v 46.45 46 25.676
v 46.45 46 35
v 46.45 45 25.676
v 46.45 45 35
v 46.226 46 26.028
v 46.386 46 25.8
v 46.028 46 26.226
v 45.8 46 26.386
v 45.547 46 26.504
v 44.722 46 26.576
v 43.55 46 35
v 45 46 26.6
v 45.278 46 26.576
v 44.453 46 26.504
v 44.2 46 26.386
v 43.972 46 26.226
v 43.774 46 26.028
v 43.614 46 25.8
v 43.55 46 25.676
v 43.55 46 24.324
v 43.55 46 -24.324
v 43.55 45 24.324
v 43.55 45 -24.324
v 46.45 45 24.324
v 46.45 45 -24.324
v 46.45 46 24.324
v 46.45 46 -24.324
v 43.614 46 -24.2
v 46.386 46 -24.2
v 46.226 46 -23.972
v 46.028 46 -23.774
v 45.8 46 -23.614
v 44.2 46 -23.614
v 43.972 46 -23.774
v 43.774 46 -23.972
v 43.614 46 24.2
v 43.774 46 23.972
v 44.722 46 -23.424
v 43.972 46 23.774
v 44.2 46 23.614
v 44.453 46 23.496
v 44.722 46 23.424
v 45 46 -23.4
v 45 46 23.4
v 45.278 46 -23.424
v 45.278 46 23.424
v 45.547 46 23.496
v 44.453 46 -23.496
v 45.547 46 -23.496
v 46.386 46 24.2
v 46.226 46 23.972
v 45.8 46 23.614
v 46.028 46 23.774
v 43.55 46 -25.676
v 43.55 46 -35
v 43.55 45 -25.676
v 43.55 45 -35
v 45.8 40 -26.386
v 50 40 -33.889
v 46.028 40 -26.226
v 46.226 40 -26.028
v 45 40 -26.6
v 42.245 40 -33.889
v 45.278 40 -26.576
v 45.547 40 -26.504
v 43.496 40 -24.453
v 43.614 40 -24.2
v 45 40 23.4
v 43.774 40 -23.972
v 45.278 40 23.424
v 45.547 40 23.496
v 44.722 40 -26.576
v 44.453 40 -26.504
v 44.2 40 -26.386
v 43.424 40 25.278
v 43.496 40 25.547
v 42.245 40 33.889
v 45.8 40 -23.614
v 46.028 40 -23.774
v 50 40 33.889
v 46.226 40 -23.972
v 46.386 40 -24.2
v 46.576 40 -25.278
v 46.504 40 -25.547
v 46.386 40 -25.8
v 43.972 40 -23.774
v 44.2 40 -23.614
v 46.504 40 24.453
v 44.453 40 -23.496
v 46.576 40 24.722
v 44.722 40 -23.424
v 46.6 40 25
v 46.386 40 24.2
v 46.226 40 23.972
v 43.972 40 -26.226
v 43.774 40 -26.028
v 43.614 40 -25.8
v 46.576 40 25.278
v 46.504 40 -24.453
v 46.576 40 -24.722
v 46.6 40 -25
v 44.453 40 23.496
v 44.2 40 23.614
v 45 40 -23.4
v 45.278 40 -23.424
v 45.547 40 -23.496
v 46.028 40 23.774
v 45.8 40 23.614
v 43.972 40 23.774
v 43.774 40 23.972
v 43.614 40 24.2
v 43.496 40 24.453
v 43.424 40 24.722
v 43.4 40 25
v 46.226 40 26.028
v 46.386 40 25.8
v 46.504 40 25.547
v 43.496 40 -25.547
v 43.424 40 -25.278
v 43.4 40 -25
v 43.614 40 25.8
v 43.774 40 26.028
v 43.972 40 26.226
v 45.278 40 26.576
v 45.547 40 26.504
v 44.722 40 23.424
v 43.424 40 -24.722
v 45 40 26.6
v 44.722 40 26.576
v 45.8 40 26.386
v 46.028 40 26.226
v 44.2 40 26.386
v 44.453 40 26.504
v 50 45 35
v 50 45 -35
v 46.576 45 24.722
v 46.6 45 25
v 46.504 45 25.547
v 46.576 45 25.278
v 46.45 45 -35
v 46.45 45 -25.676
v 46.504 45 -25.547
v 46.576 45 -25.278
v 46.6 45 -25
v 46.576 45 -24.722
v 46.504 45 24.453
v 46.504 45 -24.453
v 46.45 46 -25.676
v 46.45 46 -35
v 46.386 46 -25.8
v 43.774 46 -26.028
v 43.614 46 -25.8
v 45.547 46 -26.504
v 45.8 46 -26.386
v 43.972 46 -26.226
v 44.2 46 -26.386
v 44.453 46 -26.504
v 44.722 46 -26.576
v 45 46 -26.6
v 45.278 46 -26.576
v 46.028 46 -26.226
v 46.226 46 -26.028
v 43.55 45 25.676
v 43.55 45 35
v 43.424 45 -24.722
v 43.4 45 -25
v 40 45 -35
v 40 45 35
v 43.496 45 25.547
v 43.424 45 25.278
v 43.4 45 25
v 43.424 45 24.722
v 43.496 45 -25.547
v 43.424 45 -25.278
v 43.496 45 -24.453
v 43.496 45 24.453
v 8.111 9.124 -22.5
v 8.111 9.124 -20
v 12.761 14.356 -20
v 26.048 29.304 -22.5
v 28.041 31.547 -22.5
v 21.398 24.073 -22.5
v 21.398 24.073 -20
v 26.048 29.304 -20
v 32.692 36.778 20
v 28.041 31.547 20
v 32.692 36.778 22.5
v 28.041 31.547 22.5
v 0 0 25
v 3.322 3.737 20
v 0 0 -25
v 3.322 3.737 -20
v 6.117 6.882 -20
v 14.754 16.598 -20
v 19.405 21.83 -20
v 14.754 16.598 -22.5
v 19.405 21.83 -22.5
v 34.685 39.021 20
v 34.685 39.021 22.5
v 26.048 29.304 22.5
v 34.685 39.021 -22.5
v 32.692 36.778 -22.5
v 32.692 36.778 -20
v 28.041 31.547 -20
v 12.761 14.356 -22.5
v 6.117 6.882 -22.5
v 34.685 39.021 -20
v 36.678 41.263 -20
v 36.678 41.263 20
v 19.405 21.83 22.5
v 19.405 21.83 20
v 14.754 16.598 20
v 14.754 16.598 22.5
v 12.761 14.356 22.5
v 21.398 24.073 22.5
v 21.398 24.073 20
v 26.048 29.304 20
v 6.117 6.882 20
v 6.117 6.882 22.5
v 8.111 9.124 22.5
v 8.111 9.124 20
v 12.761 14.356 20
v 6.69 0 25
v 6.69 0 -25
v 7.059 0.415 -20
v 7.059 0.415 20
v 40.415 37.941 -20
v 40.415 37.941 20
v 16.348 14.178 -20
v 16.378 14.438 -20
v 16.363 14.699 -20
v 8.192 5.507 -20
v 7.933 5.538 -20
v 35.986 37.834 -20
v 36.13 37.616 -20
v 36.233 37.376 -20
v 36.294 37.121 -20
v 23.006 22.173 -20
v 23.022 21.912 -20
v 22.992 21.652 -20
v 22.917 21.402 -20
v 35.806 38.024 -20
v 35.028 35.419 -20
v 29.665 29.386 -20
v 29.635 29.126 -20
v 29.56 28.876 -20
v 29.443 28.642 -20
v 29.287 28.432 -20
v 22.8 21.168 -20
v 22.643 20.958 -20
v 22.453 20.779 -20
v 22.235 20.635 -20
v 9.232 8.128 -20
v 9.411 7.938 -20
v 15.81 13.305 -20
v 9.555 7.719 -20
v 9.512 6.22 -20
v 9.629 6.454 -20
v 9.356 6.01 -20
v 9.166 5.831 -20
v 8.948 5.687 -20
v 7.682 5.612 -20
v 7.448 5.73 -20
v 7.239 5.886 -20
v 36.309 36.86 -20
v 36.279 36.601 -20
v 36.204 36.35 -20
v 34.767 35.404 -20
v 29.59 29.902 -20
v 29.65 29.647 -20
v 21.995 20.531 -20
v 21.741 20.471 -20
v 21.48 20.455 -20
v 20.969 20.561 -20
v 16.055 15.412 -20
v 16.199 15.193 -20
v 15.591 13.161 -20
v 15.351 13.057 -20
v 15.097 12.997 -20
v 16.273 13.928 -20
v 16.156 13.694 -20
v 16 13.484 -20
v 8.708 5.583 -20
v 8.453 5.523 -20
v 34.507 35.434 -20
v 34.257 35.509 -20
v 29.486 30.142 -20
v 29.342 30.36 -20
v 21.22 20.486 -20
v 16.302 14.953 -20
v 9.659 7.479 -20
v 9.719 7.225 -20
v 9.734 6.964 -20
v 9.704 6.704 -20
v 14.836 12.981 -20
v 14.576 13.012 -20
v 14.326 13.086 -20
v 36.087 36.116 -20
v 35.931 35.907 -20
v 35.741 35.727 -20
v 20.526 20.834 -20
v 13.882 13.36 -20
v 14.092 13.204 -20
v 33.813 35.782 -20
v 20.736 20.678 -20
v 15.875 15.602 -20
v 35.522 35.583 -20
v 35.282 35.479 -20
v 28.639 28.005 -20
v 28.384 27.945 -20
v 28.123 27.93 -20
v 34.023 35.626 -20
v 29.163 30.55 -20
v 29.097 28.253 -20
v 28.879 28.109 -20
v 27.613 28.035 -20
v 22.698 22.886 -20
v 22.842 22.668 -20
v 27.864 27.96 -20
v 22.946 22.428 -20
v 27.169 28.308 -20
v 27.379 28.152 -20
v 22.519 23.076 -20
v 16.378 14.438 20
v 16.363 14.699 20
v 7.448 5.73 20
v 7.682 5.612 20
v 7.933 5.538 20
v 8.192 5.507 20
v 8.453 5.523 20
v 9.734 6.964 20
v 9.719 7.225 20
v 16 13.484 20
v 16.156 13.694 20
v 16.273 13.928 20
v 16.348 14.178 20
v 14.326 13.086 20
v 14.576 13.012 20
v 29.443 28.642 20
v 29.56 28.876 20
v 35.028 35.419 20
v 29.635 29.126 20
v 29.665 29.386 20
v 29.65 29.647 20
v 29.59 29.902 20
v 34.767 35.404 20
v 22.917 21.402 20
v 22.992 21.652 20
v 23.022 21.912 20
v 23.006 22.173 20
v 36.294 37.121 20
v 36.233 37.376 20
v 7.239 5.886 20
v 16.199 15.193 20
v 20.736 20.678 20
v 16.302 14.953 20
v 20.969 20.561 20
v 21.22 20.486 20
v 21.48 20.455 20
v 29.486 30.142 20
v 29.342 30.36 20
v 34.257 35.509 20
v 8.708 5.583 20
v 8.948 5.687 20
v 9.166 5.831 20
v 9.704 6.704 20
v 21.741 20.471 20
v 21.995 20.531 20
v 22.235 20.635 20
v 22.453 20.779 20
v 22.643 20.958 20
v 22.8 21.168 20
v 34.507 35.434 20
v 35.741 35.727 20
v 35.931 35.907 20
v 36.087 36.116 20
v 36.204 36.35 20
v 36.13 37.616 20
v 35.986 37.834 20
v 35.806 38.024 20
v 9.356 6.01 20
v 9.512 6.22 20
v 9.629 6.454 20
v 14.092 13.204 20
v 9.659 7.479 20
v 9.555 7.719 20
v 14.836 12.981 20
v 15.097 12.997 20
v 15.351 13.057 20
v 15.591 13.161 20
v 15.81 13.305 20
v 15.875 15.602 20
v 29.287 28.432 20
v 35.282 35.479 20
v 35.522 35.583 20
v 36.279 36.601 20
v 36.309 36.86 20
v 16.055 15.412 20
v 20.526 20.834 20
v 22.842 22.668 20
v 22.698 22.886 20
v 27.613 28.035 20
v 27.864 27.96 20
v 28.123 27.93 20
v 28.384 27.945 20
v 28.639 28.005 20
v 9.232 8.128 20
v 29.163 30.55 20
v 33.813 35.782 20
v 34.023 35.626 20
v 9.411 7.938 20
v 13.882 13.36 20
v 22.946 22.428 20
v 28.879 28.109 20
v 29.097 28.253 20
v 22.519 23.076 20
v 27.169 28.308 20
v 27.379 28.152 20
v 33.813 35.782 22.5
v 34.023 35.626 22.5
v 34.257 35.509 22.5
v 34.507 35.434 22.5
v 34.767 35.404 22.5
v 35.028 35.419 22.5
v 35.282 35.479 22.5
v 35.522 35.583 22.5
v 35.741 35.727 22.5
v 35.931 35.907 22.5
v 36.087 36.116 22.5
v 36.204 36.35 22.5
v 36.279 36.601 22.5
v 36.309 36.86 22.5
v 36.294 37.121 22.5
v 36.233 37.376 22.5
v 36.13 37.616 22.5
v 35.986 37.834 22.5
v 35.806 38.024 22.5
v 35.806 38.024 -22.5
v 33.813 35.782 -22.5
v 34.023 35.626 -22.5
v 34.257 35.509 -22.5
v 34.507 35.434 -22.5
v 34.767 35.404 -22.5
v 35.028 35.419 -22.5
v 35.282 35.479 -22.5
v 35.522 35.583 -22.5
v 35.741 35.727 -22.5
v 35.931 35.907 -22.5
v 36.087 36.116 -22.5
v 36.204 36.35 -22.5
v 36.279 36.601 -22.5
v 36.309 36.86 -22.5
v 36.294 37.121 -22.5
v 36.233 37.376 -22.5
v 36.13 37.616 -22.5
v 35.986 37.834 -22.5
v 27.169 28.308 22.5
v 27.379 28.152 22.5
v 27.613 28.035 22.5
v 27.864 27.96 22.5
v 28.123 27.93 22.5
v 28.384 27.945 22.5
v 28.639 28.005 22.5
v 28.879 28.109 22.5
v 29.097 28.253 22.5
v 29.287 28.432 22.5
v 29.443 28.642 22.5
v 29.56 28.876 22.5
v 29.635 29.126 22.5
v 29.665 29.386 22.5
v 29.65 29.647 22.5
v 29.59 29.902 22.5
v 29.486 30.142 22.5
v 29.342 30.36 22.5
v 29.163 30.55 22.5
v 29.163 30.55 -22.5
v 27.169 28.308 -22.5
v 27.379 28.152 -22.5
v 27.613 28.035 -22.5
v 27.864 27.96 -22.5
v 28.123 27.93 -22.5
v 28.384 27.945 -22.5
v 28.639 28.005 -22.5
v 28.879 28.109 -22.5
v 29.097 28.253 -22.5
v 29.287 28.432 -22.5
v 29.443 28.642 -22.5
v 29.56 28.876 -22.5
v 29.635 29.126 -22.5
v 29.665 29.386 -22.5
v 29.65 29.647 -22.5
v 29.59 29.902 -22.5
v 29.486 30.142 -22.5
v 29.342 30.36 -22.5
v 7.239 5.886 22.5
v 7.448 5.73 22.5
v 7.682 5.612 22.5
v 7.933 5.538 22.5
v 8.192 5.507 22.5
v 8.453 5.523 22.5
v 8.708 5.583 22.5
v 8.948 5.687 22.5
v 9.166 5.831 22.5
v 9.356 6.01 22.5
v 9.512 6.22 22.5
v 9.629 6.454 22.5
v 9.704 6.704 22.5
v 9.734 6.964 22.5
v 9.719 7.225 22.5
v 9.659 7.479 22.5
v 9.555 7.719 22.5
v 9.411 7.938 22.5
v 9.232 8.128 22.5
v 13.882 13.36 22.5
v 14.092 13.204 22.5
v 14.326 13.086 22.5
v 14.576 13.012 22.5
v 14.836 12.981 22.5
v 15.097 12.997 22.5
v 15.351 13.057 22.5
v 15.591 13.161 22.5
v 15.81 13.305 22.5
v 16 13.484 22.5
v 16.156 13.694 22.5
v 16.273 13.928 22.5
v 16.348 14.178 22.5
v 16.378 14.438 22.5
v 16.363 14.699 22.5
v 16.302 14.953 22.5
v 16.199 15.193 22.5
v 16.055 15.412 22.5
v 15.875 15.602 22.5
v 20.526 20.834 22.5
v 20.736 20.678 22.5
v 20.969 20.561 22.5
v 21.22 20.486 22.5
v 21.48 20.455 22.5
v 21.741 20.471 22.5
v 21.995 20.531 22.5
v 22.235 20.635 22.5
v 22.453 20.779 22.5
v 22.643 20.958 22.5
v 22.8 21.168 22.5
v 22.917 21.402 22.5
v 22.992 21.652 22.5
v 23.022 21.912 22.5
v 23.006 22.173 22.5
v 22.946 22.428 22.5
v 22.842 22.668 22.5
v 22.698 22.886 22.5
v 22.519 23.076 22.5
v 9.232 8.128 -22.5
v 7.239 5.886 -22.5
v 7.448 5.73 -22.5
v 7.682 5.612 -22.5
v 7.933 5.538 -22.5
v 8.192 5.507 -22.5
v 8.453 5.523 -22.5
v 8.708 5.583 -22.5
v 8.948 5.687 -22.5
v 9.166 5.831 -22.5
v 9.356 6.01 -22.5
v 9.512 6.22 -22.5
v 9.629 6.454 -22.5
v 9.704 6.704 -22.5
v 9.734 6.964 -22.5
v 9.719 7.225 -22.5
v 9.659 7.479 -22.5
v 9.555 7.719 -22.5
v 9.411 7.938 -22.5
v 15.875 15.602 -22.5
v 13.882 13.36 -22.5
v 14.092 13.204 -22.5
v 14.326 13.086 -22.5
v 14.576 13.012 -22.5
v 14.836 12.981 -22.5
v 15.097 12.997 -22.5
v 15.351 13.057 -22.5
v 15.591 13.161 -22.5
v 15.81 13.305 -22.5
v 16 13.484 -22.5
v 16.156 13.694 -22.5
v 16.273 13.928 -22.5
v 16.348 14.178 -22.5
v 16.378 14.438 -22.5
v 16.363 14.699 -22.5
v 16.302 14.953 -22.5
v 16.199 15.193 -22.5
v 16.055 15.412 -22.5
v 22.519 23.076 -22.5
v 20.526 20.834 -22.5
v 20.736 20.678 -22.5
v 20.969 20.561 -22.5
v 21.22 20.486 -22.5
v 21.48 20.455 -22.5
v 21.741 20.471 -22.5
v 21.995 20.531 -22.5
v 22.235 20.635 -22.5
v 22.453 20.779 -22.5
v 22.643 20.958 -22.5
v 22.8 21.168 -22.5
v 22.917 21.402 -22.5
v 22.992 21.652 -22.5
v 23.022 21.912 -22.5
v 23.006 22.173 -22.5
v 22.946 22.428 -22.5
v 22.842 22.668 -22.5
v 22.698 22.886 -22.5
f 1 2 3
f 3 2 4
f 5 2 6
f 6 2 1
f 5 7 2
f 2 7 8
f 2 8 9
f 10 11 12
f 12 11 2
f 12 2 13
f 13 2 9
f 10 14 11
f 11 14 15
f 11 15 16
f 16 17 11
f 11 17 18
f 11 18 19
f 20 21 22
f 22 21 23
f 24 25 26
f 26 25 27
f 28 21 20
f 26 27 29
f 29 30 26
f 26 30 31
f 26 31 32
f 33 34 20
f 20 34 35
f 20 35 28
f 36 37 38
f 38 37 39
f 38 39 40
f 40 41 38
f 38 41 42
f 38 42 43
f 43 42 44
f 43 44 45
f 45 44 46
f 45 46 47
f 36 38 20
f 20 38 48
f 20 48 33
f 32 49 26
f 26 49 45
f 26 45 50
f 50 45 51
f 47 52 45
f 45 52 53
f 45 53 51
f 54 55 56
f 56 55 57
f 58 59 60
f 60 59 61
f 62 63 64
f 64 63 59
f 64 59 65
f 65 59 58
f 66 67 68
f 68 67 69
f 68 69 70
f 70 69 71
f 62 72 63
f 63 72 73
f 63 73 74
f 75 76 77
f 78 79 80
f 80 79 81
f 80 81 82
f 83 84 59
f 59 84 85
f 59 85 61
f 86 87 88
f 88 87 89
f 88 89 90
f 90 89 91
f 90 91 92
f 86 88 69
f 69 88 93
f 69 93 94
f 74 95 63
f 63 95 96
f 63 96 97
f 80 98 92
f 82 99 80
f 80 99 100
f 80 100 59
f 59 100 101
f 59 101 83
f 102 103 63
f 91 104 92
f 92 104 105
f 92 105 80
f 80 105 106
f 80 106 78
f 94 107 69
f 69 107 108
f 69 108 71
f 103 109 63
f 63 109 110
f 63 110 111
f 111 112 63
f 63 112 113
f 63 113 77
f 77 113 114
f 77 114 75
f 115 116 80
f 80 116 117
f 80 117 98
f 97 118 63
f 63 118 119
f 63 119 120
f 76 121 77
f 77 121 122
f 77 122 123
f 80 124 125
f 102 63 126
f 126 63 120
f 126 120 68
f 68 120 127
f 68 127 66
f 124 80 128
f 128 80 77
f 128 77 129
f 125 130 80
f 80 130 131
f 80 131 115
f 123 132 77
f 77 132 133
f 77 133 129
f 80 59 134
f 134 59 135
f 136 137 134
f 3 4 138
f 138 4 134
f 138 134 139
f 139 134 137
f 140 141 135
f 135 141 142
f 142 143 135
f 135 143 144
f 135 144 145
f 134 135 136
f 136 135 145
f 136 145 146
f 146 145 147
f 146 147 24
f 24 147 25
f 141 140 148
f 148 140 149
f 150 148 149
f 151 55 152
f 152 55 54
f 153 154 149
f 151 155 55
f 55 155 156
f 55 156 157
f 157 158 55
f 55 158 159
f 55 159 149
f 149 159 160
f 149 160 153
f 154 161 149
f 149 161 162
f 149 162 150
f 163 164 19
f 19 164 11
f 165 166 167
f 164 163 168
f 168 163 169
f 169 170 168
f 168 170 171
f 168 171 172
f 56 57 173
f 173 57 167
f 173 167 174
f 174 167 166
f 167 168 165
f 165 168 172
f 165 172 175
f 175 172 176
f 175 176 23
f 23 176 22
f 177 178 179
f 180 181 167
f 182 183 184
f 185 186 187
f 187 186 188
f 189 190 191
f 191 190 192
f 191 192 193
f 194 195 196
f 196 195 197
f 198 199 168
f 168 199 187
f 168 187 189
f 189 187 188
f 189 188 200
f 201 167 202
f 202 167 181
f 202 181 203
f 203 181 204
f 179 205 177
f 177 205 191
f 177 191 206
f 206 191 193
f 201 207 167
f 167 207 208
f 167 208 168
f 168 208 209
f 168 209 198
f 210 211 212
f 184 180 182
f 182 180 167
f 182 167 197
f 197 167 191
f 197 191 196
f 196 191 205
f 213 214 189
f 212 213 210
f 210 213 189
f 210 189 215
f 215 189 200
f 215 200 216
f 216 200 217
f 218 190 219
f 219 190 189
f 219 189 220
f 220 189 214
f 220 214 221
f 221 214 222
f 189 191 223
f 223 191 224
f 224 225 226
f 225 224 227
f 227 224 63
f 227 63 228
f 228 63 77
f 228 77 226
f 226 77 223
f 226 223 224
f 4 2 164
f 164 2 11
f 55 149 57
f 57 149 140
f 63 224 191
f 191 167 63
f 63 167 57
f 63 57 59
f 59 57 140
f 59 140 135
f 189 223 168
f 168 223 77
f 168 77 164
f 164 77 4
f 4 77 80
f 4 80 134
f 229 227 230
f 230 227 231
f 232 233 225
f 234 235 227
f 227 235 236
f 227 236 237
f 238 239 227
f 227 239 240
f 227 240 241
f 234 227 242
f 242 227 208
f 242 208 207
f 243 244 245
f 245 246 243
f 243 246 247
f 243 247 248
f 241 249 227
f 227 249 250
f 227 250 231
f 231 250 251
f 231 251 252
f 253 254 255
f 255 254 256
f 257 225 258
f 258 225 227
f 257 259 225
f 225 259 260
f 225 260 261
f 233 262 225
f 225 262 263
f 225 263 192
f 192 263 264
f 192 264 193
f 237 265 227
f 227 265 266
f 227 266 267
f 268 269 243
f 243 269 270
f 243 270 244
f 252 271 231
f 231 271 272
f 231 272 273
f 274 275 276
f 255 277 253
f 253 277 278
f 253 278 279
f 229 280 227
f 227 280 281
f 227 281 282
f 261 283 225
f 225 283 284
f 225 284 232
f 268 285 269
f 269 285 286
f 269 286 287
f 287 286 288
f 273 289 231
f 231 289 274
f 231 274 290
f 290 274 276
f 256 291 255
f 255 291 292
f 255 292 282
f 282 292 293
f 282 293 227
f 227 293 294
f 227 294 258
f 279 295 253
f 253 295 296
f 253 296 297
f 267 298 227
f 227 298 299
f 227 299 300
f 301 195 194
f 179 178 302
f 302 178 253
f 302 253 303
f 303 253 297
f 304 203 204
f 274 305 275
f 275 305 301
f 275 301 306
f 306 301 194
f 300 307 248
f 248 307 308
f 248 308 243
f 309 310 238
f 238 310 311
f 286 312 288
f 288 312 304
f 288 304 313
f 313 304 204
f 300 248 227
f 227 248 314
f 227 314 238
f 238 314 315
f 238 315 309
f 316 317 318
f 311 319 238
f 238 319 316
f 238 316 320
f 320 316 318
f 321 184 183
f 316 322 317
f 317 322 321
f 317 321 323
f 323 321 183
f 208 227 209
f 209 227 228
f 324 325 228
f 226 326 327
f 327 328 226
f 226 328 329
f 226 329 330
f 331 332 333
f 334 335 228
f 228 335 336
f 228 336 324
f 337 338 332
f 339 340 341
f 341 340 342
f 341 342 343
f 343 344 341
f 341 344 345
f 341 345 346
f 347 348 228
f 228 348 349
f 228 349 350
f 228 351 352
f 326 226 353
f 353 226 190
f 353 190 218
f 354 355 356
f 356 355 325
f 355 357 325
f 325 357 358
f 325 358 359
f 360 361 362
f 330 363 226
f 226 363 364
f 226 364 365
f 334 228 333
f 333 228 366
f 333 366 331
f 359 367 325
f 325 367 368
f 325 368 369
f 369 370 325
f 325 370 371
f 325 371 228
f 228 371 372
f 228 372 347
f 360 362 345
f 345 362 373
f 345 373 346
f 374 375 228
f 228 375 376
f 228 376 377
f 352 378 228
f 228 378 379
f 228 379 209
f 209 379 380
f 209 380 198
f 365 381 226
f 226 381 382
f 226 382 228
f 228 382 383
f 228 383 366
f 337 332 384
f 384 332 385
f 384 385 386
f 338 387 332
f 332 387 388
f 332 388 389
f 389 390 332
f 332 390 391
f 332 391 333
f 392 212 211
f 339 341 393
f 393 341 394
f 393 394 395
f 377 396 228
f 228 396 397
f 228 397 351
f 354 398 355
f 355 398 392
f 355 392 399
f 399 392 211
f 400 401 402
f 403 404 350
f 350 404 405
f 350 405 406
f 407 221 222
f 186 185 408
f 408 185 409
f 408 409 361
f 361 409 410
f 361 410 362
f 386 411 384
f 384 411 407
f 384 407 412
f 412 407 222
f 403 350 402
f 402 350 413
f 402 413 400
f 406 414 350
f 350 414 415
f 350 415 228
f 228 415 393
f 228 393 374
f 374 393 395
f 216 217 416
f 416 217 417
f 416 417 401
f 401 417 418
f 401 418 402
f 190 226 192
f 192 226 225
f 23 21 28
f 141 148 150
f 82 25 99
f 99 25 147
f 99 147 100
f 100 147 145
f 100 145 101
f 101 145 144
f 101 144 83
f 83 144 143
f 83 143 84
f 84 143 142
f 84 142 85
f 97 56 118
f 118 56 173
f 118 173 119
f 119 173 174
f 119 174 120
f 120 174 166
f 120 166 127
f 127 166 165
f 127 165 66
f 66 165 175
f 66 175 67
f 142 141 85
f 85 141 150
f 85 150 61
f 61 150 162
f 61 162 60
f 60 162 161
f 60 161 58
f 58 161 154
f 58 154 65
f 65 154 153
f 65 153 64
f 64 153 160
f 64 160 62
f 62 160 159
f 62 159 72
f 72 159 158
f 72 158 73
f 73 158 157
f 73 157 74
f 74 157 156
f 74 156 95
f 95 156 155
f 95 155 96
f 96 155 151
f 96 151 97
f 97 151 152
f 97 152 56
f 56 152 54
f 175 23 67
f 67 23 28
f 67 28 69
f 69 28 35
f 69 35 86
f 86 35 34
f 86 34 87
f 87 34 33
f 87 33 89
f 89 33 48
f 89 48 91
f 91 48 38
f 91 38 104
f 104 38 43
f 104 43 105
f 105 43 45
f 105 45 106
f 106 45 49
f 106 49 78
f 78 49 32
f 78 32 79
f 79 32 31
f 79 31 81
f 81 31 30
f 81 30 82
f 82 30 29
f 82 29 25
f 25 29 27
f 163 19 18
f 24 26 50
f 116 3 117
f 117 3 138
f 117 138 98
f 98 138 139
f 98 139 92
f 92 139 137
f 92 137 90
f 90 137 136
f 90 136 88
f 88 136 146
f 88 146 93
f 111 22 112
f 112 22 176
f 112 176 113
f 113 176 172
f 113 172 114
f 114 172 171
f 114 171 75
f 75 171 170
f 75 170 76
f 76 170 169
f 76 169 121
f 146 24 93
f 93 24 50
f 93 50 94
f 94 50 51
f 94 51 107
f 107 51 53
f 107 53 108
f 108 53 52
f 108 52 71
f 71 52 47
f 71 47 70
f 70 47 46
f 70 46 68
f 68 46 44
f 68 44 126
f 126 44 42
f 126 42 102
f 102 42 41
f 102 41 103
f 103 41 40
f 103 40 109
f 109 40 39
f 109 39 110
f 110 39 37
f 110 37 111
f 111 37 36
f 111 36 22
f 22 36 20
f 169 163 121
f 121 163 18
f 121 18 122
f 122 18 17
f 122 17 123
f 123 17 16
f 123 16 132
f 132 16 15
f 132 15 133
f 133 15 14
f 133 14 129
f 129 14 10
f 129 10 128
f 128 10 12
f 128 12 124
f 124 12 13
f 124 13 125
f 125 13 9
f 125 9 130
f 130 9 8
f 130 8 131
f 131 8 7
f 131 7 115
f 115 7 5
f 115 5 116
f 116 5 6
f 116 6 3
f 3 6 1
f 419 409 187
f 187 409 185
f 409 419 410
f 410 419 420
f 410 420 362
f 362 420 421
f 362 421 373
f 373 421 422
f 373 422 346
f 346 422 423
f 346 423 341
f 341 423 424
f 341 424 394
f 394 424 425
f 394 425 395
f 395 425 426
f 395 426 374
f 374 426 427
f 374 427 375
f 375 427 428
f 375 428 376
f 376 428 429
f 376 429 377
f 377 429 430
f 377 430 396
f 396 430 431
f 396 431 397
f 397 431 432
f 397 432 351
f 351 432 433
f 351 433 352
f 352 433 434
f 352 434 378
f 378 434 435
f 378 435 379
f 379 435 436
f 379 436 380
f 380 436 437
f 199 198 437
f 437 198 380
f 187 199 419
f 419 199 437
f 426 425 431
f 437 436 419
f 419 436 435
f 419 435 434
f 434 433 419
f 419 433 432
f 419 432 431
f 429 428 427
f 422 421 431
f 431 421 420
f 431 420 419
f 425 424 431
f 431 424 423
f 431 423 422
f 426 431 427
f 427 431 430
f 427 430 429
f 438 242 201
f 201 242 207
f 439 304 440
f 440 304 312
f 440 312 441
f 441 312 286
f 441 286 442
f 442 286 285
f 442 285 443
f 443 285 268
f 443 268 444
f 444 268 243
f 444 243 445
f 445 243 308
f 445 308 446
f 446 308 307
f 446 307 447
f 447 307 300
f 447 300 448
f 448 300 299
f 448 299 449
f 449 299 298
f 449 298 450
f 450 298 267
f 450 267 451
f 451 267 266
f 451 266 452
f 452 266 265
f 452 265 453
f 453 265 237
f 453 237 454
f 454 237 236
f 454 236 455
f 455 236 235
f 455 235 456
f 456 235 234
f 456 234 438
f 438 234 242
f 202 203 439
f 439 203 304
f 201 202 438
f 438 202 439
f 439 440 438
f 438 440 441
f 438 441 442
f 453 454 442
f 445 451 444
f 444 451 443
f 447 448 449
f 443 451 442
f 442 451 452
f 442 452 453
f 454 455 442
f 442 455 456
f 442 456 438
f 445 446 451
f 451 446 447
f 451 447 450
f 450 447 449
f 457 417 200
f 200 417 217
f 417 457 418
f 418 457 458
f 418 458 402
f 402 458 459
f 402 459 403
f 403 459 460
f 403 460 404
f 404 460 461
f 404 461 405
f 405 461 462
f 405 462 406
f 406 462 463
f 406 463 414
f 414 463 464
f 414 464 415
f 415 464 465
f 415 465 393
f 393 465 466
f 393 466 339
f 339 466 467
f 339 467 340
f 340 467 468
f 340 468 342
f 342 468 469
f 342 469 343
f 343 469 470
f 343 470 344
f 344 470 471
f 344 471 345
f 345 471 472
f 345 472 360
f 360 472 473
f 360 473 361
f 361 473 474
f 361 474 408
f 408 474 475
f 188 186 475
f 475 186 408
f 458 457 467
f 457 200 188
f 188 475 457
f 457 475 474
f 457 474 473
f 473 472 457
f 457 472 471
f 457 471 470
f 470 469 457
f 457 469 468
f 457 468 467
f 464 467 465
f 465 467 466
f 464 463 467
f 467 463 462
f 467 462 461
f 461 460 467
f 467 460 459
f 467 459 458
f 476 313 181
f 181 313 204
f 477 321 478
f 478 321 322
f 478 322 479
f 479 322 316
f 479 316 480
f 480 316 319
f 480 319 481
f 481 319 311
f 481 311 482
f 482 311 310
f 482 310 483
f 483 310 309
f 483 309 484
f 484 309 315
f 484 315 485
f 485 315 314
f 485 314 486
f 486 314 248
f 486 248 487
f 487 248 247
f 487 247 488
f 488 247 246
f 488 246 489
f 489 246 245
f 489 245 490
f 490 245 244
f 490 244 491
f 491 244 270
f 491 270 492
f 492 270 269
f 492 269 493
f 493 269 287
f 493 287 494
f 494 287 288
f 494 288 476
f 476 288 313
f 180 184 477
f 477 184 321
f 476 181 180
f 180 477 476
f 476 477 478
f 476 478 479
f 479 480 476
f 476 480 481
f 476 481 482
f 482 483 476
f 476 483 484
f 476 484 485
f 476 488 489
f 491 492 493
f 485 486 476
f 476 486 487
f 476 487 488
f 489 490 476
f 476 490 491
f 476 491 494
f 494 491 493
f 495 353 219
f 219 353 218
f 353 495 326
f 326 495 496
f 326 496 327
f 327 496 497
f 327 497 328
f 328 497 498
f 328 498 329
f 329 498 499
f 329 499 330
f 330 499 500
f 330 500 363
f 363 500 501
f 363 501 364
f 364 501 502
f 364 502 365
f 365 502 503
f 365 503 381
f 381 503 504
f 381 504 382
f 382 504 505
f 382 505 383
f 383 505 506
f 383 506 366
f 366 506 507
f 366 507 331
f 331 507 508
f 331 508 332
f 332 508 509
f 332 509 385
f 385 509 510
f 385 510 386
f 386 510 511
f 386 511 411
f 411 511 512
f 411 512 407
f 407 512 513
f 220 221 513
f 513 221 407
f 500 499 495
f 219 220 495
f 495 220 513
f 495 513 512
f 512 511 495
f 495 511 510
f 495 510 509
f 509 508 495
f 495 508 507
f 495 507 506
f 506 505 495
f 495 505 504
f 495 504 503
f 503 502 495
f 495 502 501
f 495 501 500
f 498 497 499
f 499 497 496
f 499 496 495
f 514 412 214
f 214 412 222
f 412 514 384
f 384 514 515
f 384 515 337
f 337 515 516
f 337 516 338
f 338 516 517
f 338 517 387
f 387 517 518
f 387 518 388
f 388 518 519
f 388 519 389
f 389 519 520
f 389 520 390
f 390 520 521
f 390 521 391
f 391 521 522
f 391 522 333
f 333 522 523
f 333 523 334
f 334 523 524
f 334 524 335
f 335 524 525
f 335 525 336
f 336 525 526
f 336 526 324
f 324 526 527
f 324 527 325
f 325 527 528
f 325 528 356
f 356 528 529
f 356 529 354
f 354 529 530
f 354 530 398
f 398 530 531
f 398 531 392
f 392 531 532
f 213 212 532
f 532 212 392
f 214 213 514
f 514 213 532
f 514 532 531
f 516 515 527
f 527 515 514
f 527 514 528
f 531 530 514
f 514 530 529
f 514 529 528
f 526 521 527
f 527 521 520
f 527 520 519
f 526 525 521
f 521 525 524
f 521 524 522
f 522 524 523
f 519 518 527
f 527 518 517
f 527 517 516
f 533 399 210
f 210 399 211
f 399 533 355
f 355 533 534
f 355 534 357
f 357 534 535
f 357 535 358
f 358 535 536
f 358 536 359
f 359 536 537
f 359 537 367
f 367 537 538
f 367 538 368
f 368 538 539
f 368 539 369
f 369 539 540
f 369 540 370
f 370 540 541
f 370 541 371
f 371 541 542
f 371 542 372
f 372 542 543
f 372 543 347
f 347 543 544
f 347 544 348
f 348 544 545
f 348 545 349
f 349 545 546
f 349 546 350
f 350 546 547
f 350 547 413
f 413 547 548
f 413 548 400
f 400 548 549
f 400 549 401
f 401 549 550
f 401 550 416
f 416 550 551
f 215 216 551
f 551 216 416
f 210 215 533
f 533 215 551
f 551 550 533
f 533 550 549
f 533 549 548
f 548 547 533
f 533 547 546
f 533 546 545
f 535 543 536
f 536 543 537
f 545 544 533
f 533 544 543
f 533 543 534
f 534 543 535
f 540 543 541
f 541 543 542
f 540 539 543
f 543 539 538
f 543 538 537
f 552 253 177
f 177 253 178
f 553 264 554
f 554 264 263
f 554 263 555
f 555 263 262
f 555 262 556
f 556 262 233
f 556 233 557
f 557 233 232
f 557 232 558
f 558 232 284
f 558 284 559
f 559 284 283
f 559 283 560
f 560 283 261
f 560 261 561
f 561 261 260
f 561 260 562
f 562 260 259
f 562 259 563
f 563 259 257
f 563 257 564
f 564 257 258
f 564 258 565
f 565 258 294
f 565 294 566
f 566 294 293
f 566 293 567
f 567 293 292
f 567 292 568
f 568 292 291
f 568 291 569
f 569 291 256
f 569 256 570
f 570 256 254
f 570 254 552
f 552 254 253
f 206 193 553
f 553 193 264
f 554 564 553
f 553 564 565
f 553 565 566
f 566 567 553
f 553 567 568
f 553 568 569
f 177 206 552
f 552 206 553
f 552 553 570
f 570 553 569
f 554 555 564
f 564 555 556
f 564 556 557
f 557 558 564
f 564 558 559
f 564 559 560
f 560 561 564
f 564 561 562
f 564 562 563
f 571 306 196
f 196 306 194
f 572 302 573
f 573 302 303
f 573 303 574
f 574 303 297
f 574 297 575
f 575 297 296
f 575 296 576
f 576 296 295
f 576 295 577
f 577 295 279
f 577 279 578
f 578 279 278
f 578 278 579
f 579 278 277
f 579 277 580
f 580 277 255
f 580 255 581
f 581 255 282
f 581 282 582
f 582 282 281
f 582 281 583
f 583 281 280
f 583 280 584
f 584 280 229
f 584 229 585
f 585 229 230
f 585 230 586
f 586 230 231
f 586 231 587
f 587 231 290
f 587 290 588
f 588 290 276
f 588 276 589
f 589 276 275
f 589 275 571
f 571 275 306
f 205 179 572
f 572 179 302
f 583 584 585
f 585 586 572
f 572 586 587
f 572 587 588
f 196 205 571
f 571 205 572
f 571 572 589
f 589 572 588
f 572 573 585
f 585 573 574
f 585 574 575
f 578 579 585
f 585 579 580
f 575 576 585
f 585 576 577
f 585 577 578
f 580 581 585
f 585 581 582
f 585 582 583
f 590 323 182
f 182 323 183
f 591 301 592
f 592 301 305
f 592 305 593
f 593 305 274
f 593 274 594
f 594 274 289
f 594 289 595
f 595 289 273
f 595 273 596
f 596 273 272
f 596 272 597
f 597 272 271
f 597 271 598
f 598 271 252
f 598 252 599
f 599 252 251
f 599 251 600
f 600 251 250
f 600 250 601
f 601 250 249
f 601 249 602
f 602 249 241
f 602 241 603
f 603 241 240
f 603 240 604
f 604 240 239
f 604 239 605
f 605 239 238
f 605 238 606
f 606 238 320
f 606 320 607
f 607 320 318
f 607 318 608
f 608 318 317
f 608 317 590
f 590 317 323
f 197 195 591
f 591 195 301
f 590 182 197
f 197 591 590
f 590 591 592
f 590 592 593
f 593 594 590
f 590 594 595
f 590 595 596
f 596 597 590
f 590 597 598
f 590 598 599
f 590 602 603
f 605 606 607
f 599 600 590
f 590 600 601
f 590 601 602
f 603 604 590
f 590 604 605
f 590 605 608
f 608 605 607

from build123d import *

# Parameters (mm, degrees)
MAIN_DEPTH                   = 35
SIDECUT_DEPTH                = 51
SIDECUT_DEPTH_BACK           = 1
SKETCH5_W                    = 40
SKETCH5_H                    = 50.207972894
CENTRALCUT_DEPTH             = 38.370465934
SKETCH3_R                    = 1.6
MAKERBEAMFIXHOLES_DEPTH      = 1
MAKERBEAMFIXHOLES_DEPTH_BACK = 47
ROLLERSUPPORTHOLES_DEPTH     = 22.5
LPATTERN1_COUNT              = 5
LPATTERN1_PITCH              = 10


with BuildPart() as part:
    # Sketch1 → Main (new body, symmetric)
    with BuildSketch(Plane.XY):
        Polygon((50, 45), (50, 40), (42.245330322, 40), (6.689774766, 0), (0, 0), (40, 45), (43.55, 45), (43.55, 46), (46.45, 46), (46.45, 45), align=None)
    extrude(amount=MAIN_DEPTH, both=True)

    # Sketch2 → SideCut (cut, two sides)
    with BuildSketch(Plane(origin=(0, 12.071067812, 0), x_dir=(0, 0, 1), z_dir=(1, 0, 0))) as sidecut_sk:
        Polygon((-35, -32.928932188), (-25, 12.071067812), (-35, 12.071067812), align=None)
        Polygon((35, -32.928932188), (35, 12.071067812), (25, 12.071067812), align=None)
    extrude(amount=SIDECUT_DEPTH, mode=Mode.SUBTRACT)
    extrude(sidecut_sk.sketch, amount=-SIDECUT_DEPTH_BACK, mode=Mode.SUBTRACT)

    # Sketch5 → CentralCut (cut, through all)
    with BuildSketch(Plane(origin=(0, 0, 0), x_dir=(0, 0, 1), z_dir=(-0.747409319, 0.664363839, 0))):
        with Locations((0, 30.103986447)):
            Rectangle(SKETCH5_W, SKETCH5_H)
    extrude(amount=-CENTRALCUT_DEPTH, mode=Mode.SUBTRACT)

    # Sketch3 → MakerBeamFixHoles (cut, two sides)
    with BuildSketch(Plane(origin=(0, 46, 0), x_dir=(1, 0, 0), z_dir=(0, 1, 0))) as makerbeamfixholes_sk:
        with Locations((45, 25)):
            Circle(SKETCH3_R)
        with Locations((45, -25)):
            Circle(SKETCH3_R)
    extrude(amount=MAKERBEAMFIXHOLES_DEPTH, mode=Mode.SUBTRACT)
    extrude(makerbeamfixholes_sk.sketch, amount=-MAKERBEAMFIXHOLES_DEPTH_BACK, mode=Mode.SUBTRACT)

    # Sketch4 → RollerSupportHoles (cut, symmetric)
    with BuildSketch(Plane.XY):
        with BuildLine():
            Line((34.685089289, 39.020725451), (32.691997773, 36.778497494))
            Line((32.691997773, 36.778497494), (33.813111751, 35.781951736))
            ThreePointArc((33.813111751, 35.781951736), (35.930771487, 35.906519956), (35.806203267, 38.024179692))
            Line((35.806203267, 38.024179692), (34.685089289, 39.020725451))
        make_face()
    rollersupportholes = extrude(amount=ROLLERSUPPORTHOLES_DEPTH, both=True, mode=Mode.SUBTRACT)

    # LPattern1: RollerSupportHoles ×5
    with Locations(*[Vector(-0.664363839, -0.747409319, 0) * (i * LPATTERN1_PITCH) for i in range(1, LPATTERN1_COUNT)]):
        add(rollersupportholes, mode=Mode.SUBTRACT)


solid = part.part
